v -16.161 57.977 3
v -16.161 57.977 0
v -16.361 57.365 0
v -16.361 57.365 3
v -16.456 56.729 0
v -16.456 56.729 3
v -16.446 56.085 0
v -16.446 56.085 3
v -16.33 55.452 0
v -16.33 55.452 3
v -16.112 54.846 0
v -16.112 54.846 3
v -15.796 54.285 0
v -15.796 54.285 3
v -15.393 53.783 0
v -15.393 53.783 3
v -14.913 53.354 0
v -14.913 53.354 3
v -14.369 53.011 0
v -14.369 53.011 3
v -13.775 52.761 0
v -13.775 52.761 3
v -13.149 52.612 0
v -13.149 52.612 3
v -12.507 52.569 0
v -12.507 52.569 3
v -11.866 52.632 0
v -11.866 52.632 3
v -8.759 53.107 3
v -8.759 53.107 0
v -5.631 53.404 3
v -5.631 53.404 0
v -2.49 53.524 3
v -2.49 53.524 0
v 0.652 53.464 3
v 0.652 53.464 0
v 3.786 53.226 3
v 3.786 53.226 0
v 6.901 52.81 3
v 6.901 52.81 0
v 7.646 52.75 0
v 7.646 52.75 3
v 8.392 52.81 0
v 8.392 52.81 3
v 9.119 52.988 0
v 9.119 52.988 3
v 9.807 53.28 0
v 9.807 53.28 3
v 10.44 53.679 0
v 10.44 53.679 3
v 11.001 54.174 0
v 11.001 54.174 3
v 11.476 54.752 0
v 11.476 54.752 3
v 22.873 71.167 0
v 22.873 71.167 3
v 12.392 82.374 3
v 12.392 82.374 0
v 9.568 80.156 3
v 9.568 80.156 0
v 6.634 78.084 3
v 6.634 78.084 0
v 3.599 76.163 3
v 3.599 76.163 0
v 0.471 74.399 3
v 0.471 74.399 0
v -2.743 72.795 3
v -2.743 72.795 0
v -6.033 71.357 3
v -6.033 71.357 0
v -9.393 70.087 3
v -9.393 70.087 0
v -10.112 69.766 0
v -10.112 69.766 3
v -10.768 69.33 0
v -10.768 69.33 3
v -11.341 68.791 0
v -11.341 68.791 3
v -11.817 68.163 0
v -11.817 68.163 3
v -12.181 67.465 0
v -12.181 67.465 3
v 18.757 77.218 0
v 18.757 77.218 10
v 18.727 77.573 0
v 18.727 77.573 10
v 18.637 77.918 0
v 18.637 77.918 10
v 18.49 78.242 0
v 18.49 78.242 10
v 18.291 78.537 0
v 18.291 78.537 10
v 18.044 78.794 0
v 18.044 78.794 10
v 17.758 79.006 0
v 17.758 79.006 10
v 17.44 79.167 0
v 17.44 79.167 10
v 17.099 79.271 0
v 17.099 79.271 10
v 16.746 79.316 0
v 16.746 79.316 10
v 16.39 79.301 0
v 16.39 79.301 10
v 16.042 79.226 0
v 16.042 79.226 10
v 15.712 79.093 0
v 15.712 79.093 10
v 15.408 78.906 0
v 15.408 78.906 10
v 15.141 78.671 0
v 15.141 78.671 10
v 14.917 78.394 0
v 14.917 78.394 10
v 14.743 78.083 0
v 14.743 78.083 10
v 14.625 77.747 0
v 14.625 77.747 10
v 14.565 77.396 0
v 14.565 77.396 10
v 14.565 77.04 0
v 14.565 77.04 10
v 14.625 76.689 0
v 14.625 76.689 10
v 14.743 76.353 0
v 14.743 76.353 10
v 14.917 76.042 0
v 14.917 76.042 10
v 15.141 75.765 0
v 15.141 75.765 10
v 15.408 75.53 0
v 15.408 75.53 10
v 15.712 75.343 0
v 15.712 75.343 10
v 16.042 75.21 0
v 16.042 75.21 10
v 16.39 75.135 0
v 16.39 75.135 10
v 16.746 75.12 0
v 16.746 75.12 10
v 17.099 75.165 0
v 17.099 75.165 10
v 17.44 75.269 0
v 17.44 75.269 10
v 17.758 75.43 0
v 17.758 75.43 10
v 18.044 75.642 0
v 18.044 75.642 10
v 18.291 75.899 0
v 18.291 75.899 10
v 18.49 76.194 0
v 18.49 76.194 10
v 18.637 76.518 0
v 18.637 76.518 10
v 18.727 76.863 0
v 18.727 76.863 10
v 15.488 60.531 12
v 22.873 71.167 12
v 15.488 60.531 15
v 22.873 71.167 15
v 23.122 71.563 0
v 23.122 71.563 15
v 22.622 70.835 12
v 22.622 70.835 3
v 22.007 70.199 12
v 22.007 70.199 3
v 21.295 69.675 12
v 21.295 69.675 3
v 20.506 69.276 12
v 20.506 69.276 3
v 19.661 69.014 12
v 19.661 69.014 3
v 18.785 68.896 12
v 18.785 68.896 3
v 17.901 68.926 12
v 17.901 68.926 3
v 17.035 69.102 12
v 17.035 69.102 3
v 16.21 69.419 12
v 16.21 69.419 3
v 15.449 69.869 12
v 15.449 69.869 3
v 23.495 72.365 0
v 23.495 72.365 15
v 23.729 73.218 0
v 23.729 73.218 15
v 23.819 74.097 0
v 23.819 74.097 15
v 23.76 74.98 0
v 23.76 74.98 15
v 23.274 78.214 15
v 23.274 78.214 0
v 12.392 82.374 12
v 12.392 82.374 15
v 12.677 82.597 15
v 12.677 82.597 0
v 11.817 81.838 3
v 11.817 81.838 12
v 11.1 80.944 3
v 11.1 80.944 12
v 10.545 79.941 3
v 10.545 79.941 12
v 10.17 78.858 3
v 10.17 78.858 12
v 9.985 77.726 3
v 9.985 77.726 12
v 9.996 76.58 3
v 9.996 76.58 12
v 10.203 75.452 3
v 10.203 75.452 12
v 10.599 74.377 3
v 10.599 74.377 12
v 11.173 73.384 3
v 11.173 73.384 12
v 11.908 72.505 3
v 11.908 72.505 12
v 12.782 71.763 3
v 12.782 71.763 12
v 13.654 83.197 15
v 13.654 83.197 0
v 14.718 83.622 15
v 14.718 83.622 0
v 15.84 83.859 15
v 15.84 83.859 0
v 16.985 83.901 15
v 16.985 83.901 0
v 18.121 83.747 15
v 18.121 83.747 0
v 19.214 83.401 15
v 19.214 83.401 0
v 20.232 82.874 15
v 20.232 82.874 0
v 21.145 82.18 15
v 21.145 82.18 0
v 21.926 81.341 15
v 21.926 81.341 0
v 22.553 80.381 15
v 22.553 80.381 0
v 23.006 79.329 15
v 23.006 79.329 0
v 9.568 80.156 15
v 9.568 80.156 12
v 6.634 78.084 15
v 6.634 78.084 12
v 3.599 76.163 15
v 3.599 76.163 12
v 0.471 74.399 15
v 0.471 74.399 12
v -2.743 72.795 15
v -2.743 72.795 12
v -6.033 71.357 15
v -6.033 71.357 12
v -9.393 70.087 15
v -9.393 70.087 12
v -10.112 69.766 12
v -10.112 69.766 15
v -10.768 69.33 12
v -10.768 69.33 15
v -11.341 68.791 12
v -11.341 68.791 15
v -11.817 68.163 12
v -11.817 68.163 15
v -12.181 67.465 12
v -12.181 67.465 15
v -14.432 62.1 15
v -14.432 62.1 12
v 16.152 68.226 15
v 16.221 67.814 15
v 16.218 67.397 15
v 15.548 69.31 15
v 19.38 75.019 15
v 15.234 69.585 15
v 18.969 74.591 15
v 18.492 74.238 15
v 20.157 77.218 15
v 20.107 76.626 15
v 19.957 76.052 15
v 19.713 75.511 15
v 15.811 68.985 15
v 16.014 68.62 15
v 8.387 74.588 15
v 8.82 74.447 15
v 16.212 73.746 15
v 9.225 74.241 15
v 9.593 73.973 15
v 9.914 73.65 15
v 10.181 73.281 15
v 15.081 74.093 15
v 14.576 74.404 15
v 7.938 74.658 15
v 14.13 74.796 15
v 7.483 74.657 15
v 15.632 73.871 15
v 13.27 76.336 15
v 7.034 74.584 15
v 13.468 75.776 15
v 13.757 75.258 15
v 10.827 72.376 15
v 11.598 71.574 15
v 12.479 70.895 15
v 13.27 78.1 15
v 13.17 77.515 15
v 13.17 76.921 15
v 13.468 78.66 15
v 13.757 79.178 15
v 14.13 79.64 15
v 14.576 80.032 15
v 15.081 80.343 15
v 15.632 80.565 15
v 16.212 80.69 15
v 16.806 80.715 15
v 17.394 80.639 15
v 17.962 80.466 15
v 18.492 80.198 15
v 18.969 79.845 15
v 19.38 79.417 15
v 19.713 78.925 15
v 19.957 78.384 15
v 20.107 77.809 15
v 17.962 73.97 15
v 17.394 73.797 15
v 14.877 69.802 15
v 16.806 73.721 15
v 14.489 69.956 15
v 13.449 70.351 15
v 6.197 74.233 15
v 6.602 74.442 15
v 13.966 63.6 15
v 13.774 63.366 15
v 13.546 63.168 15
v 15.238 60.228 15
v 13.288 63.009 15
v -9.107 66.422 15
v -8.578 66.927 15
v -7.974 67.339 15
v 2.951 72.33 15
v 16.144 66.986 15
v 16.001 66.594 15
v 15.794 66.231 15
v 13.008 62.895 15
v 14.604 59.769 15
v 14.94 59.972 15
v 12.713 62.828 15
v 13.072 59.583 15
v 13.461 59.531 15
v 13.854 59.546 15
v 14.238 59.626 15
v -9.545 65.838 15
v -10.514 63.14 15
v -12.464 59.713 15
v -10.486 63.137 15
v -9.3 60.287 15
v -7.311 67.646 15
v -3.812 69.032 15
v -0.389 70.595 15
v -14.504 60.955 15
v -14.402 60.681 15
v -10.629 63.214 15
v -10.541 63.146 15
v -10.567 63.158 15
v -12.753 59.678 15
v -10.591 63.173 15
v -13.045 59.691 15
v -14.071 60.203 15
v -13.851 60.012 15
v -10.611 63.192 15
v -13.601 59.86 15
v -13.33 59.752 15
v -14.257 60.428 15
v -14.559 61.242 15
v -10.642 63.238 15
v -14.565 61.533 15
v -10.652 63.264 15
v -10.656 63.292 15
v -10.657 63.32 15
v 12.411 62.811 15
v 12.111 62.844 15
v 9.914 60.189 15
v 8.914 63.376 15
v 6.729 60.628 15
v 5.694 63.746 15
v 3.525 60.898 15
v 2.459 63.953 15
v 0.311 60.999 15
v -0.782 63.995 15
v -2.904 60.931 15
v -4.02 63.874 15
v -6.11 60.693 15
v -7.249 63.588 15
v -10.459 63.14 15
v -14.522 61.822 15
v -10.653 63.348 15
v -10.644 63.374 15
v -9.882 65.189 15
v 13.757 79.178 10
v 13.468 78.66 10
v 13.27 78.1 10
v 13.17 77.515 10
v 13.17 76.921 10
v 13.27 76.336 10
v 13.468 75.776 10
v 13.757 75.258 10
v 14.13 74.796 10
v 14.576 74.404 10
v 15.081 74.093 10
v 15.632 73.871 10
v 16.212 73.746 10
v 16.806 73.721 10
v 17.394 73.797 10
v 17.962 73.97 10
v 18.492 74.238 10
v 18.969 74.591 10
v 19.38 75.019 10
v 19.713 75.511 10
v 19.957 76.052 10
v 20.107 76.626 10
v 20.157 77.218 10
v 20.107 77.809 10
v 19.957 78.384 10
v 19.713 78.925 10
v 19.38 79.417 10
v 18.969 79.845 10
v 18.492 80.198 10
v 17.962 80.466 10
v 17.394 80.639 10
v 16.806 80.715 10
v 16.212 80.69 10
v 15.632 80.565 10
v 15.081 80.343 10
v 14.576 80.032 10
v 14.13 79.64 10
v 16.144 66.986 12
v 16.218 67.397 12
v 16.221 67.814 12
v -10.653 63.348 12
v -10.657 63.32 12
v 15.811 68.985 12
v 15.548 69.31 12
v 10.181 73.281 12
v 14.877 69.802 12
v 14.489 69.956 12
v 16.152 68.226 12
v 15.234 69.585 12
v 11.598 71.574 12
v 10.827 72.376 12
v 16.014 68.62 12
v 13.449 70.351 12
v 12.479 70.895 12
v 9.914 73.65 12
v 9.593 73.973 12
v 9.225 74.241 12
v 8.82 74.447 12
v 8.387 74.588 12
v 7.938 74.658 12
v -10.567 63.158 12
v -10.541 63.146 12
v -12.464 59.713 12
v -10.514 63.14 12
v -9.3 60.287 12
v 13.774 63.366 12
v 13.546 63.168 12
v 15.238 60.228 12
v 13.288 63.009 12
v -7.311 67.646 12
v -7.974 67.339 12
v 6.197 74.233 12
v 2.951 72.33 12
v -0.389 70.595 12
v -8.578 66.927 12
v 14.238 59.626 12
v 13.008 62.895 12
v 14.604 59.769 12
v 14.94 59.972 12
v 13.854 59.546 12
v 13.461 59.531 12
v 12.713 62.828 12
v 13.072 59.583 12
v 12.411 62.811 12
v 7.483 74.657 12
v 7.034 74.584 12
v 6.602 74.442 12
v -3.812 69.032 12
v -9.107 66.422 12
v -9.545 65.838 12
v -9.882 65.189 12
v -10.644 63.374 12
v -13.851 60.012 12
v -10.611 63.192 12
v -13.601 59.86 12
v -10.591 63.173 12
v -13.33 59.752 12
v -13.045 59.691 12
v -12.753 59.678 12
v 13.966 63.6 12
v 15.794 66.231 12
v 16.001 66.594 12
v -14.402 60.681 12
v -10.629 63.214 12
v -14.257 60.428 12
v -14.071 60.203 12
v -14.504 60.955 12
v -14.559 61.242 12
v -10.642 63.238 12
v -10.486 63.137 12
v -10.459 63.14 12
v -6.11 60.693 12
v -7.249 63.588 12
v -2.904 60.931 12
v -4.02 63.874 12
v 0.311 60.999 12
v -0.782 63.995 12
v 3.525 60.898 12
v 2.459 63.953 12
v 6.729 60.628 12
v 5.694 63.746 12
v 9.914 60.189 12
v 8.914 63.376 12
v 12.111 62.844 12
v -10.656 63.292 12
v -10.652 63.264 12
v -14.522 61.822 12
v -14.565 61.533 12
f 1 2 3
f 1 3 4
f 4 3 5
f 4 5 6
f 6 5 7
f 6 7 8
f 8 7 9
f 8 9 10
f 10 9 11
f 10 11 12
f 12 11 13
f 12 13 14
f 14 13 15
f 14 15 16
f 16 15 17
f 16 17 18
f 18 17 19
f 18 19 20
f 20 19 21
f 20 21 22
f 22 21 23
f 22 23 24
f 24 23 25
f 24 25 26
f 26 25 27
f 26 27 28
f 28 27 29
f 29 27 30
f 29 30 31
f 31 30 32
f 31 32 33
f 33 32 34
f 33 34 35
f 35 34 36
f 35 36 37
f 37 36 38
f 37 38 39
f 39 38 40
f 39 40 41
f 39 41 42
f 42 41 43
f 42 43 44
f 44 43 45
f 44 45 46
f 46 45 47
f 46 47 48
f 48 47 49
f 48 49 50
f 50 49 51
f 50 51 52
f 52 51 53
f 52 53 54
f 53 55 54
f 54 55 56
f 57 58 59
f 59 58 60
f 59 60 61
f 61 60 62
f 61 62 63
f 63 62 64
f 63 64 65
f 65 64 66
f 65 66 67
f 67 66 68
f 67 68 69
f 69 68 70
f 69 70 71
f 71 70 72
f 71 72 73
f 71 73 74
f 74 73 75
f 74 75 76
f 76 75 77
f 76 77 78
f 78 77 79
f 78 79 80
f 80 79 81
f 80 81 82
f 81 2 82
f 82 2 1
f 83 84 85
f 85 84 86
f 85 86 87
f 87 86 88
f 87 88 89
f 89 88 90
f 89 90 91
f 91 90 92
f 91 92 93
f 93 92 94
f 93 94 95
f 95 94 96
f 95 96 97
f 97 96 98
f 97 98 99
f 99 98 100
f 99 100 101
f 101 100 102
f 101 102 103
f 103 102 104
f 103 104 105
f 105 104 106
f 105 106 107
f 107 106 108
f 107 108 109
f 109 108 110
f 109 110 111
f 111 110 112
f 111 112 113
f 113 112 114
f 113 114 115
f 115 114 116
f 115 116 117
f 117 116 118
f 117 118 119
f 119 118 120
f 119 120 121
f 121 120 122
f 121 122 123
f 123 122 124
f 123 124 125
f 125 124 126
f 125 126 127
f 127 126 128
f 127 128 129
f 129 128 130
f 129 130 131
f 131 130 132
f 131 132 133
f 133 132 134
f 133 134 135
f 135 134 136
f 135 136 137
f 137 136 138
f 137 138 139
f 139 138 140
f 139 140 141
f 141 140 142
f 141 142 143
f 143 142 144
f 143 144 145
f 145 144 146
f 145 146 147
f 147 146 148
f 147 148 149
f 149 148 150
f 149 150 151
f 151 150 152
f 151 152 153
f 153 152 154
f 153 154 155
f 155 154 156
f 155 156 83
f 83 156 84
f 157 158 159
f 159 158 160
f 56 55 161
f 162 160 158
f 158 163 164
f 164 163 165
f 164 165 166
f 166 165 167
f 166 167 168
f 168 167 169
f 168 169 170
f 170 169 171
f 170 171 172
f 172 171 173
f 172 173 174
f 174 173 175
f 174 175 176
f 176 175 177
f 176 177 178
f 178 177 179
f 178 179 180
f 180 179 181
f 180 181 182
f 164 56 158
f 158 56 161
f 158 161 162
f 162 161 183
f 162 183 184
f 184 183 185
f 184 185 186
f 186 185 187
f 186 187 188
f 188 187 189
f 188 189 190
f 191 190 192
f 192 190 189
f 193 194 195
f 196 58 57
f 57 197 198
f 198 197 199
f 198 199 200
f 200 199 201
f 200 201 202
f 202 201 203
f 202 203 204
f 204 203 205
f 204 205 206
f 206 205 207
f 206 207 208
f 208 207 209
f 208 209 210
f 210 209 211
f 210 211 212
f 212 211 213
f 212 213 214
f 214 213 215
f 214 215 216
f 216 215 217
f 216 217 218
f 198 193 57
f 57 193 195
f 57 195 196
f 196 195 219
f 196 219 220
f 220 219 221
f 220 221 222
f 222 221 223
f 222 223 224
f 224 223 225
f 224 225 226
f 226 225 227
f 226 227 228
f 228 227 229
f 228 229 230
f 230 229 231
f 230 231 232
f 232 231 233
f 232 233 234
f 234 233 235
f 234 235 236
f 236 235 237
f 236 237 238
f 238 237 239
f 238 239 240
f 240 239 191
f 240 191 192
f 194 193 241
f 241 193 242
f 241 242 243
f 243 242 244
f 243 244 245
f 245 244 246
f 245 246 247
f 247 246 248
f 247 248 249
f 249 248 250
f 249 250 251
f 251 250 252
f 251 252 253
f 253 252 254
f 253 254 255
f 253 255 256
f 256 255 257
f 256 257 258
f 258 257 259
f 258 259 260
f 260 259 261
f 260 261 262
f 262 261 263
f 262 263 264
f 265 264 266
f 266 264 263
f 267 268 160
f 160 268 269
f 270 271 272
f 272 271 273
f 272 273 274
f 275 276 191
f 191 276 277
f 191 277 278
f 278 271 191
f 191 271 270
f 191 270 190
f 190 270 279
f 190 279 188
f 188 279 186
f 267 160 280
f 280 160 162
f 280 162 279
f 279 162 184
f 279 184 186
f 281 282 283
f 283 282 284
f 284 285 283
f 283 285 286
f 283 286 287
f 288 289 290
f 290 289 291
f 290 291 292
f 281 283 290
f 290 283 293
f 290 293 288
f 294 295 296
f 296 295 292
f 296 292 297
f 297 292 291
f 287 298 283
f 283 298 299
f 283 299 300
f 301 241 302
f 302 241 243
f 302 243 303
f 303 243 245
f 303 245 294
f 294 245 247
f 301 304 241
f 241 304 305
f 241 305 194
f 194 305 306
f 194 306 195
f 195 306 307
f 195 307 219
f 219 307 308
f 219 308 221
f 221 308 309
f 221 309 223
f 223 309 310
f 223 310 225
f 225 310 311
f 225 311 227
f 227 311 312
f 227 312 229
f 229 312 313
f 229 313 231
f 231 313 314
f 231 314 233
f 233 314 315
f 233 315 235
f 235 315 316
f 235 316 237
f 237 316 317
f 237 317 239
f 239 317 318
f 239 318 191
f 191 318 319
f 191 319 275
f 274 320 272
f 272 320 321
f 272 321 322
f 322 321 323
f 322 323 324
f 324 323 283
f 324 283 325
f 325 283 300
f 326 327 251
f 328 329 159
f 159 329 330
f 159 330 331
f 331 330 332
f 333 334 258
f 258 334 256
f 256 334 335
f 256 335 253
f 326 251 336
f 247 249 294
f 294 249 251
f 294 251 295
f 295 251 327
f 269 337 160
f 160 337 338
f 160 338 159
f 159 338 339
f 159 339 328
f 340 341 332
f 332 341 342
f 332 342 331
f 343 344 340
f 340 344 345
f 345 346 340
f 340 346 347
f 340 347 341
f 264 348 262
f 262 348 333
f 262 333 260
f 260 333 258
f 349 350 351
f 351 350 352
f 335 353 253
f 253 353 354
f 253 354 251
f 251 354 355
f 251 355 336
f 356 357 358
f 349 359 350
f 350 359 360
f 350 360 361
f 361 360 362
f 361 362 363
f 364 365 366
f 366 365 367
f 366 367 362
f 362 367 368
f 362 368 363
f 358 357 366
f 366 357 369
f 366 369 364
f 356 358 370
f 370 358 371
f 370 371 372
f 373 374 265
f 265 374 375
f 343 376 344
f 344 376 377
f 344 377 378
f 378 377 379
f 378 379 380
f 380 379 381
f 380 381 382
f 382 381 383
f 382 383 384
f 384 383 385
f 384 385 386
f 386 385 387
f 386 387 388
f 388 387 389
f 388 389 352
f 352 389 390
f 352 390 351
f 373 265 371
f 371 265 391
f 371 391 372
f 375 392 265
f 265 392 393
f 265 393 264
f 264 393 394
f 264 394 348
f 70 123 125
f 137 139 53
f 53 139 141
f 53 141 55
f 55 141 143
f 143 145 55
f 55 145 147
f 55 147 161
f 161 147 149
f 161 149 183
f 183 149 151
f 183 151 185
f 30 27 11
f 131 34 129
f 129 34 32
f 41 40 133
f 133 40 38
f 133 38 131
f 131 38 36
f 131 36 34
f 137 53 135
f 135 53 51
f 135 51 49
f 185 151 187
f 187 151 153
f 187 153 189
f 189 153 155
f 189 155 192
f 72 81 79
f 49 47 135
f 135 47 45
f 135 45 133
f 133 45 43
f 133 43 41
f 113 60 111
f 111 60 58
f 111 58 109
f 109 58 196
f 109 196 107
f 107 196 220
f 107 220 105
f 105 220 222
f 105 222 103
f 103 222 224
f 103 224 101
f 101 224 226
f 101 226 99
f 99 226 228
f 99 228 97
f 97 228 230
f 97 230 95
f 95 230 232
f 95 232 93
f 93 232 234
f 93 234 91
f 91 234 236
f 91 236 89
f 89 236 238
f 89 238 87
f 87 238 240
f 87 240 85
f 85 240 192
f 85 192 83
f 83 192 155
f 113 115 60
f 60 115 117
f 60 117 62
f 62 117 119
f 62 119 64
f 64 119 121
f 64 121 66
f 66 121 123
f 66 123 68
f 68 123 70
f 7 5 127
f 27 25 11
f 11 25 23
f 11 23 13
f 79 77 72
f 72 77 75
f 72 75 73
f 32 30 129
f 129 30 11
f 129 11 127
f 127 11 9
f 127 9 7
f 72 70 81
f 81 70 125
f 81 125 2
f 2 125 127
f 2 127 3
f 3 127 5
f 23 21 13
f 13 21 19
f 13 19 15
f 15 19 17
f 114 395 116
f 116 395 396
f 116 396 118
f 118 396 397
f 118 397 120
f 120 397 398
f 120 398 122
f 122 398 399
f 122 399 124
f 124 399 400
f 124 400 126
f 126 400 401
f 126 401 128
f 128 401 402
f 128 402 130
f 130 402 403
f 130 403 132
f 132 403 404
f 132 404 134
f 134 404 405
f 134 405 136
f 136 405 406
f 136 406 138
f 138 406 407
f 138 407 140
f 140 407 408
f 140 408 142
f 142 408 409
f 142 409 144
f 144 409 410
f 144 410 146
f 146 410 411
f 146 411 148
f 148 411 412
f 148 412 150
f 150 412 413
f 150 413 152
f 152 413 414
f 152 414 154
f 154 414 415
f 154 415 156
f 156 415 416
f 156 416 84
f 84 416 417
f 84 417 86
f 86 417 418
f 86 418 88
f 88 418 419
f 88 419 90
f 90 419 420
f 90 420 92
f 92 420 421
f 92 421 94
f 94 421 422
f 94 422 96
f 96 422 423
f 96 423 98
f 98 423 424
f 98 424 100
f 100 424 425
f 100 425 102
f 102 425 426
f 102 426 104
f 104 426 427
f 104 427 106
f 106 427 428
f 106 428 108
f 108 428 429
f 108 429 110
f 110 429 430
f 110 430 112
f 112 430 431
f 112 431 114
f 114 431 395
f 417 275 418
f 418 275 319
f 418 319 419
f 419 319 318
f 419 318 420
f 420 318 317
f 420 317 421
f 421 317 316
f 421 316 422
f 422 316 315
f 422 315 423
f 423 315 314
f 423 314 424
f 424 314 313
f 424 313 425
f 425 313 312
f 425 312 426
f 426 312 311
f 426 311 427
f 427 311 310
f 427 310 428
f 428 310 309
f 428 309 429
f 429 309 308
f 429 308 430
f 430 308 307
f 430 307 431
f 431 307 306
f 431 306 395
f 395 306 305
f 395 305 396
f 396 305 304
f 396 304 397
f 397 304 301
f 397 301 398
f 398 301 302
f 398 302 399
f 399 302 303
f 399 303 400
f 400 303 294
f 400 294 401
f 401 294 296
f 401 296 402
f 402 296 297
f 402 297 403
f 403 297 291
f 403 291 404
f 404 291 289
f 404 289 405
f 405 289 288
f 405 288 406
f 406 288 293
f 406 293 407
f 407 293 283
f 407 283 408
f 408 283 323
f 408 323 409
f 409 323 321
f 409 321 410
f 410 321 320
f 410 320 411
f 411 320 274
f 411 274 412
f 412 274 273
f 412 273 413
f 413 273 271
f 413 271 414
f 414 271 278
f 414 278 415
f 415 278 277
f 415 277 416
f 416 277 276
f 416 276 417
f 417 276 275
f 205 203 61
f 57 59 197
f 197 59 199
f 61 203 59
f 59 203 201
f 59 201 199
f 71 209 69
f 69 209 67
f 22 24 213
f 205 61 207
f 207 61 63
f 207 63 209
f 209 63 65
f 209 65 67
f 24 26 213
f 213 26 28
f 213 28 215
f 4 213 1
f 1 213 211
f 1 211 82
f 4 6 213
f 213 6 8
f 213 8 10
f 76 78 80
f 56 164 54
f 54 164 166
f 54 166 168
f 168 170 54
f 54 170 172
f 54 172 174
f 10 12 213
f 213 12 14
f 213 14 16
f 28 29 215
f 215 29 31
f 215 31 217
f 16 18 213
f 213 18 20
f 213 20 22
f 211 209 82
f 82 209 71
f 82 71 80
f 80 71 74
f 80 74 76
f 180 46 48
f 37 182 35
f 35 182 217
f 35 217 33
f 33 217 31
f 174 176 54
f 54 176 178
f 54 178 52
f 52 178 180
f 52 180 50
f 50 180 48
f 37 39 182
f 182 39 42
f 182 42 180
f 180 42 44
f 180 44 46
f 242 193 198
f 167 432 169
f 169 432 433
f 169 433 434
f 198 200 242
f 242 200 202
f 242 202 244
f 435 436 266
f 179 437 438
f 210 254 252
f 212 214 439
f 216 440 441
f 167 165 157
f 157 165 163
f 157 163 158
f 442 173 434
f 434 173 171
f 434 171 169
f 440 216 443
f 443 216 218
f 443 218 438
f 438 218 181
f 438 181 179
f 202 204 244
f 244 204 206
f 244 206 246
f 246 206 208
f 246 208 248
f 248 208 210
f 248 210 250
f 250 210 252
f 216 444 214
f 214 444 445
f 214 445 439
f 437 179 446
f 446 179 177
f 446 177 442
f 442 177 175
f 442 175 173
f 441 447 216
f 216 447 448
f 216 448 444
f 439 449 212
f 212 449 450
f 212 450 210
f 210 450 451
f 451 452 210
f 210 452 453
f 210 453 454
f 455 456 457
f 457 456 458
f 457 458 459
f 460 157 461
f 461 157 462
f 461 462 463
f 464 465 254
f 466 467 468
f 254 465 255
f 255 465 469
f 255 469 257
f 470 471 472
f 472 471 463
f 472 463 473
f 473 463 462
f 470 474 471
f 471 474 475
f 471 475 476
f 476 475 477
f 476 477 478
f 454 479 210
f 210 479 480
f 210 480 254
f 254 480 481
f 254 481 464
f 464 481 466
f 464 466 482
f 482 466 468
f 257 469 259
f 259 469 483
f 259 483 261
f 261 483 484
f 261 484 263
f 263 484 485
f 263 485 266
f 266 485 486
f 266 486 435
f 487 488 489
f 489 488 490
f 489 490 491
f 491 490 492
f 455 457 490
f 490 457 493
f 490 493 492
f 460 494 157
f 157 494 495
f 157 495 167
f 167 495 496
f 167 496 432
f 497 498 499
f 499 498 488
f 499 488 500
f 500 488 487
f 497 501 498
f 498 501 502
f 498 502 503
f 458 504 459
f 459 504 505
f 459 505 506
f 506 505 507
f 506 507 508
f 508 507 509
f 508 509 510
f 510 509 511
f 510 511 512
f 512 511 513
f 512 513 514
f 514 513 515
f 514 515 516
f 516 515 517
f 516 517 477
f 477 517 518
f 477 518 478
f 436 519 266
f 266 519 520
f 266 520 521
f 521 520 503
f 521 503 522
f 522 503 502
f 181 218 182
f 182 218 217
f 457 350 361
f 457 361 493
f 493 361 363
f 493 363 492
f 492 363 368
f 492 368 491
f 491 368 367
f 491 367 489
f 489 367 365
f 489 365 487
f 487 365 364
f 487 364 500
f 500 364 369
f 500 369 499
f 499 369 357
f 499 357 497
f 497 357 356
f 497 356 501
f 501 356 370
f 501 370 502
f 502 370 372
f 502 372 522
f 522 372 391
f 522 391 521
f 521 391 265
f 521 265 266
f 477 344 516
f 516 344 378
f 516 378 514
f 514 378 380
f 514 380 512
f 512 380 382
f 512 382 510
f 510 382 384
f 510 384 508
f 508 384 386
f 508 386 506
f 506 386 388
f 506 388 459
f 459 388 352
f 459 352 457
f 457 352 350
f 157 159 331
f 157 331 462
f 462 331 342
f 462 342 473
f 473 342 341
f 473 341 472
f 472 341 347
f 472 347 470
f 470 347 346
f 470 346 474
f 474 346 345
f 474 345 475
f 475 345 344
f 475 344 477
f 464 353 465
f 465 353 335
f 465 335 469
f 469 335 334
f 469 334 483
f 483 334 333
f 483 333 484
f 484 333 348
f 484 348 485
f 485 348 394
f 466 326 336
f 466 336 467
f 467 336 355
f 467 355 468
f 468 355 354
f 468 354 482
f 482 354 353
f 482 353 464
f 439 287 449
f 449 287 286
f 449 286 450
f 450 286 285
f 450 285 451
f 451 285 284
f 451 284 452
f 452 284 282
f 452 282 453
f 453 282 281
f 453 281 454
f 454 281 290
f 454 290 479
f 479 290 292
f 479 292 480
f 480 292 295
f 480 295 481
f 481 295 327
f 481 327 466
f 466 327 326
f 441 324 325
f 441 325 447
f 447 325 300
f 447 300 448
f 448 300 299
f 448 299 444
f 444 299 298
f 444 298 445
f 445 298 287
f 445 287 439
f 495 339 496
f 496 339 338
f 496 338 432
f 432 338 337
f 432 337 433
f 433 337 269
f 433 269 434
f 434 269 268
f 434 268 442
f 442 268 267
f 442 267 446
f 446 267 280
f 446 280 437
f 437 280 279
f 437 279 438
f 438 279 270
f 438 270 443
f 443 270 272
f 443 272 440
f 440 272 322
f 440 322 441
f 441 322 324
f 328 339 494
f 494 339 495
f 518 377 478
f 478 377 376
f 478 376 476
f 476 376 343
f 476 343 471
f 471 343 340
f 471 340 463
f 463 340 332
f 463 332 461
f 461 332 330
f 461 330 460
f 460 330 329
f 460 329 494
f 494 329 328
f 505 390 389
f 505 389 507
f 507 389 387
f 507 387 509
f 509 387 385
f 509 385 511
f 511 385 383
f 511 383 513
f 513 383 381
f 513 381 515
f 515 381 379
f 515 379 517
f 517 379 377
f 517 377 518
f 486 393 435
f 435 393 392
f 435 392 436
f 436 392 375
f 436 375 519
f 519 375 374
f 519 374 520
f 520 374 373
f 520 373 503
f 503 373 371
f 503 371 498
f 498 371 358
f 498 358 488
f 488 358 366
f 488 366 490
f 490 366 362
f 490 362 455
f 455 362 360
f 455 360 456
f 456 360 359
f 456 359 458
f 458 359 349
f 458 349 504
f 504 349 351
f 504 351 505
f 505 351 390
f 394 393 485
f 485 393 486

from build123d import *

# Parameters (mm, degrees)
BOSS_EXTRUDE1_DEPTH     = 15
SKETCH16_R              = 2.1
CUT_EXTRUDE2_DEPTH      = 89.504764277
SKETCH17_R              = 3.5
CUT_EXTRUDE3_DEPTH      = 5
CUT_EXTRUDE1_DEPTH      = 5
CUT_EXTRUDE1_DEPTH_BACK = 4
CUT_EXTRUDE5_DEPTH      = 3
CUT_EXTRUDE4_DEPTH      = 3


with BuildPart() as part:
    # Sketch14 → Boss-Extrude1 (new body)
    with BuildSketch(Plane.XY):
        with BuildLine():
            Line((-16.161413536, 57.977264022), (-12.181084948, 67.464973009))
            ThreePointArc((-12.181084948, 67.464973009), (-11.065698538, 69.072353645), (-9.393028071, 70.087209723))
            ThreePointArc((-9.393028071, 70.087209723), (2.046505069, 75.260844547), (12.392283809, 82.373810035))
            ThreePointArc((12.392283809, 82.373810035), (19.046410902, 83.46789097), (23.273577081, 78.213798608))
            Line((23.273577081, 78.213798608), (23.760338244, 74.979563376))
            ThreePointArc((23.760338244, 74.979563376), (23.681286202, 72.988596756), (22.8727833, 71.167465139))
            Line((22.8727833, 71.167465139), (11.475608136, 54.751856173))
            ThreePointArc((11.475608136, 54.751856173), (9.468702378, 53.12015601), (6.90080904, 52.810252891))
            ThreePointArc((6.90080904, 52.810252891), (-2.49021647, 53.523672844), (-11.865953559, 52.631550555))
            ThreePointArc((-11.865953559, 52.631550555), (-15.60520233, 54.025568594), (-16.161413536, 57.977264022))
        make_face()
    extrude(amount=BOSS_EXTRUDE1_DEPTH)

    # Sketch16 → Cut-Extrude2 (cut, through all)
    with BuildSketch(Plane.XY.offset(15)):
        with Locations((16.657019892, 77.21798883)):
            Circle(SKETCH16_R)
    extrude(amount=-CUT_EXTRUDE2_DEPTH, mode=Mode.SUBTRACT)

    # Sketch17 → Cut-Extrude3 (cut)
    with BuildSketch(Plane.XY.offset(15)):
        with Locations((16.657019892, 77.21798883)):
            Circle(SKETCH17_R)
    extrude(amount=-CUT_EXTRUDE3_DEPTH, mode=Mode.SUBTRACT)

    # Sketch15 → Cut-Extrude1 (cut, two sides: drawn at the far end of the back side and taken through both)
    with BuildSketch(Plane.XY.offset(7).offset(-CUT_EXTRUDE1_DEPTH_BACK)):
        with BuildLine():
            Line((13.708420325, 83.2243377), (11.92660987, 87.484761825))
            Line((11.92660987, 87.484761825), (-22.331697338, 87.484761825))
            Line((-22.331697338, 87.484761825), (-22.331697338, 56.566228638))
            Line((-22.331697338, 56.566228638), (-22.331697338, 46.478853626))
            Line((-22.331697338, 46.478853626), (13.179214544, 46.478853626))
            Line((13.179214544, 46.478853626), (31.832474143, 71.167465139))
            Line((31.832474143, 71.167465139), (22.8727833, 71.167465139))
            ThreePointArc((22.8727833, 71.167465139), (19.43169391, 68.968964182), (15.448675977, 69.869003519))
            Line((15.448675977, 69.869003519), (12.782241645, 71.763031479))
            ThreePointArc((12.782241645, 71.763031479), (9.987686622, 77.756932137), (13.708420325, 83.2243377))
        make_face()
    extrude(amount=CUT_EXTRUDE1_DEPTH + CUT_EXTRUDE1_DEPTH_BACK, mode=Mode.SUBTRACT)

    # Sketch19 → Cut-Extrude5 (cut)
    with BuildSketch(Plane.XY.offset(15)):
        with BuildLine():
            Line((-14.431982215, 62.099622447), (-17.748305782, 61.423635141))
            Line((-17.748305782, 61.423635141), (-17.748305782, 50.845501907))
            Line((-17.748305782, 50.845501907), (18.748185883, 50.845501907))
            Line((18.748185883, 50.845501907), (18.748185883, 60.53099213))
            Line((18.748185883, 60.53099213), (15.487998108, 60.53099213))
            ThreePointArc((15.487998108, 60.53099213), (14.424069998, 59.689920639), (13.072075611, 59.582890491))
            ThreePointArc((13.072075611, 59.582890491), (0.311109574, 60.999206641), (-12.463639277, 59.713128338))
            ThreePointArc((-12.463639277, 59.713128338), (-14.168682333, 60.311811806), (-14.431982215, 62.099622447))
        make_face()
    extrude(amount=-CUT_EXTRUDE5_DEPTH, mode=Mode.SUBTRACT)

    # Sketch18 → Cut-Extrude4 (cut)
    with BuildSketch(Plane.XY.offset(15)):
        with BuildLine():
            Line((-9.882439649, 65.189392999), (-10.64394248, 63.374237016))
            ThreePointArc((-10.64394248, 63.374237016), (-10.620440593, 63.202263891), (-10.458545604, 63.139677097))
            ThreePointArc((-10.458545604, 63.139677097), (0.83913118, 63.994498661), (12.110509679, 62.84373919))
            ThreePointArc((12.110509679, 62.84373919), (13.150600921, 62.946203076), (13.96631504, 63.599578248))
            Line((13.96631504, 63.599578248), (15.793536168, 66.231366135))
            ThreePointArc((15.793536168, 66.231366135), (16.091647066, 68.426370752), (14.489067204, 69.955636315))
            ThreePointArc((14.489067204, 69.955636315), (12.025965625, 71.21839557), (10.180541593, 73.281364419))
            ThreePointArc((10.180541593, 73.281364419), (8.387287086, 74.587638576), (6.197252886, 74.232865263))
            ThreePointArc((6.197252886, 74.232865263), (-0.388803899, 70.594783201), (-7.311073103, 67.646228619))
            ThreePointArc((-7.311073103, 67.646228619), (-8.85277752, 66.685766956), (-9.882439649, 65.189392999))
        make_face()
    extrude(amount=-CUT_EXTRUDE4_DEPTH, mode=Mode.SUBTRACT)


solid = part.part
